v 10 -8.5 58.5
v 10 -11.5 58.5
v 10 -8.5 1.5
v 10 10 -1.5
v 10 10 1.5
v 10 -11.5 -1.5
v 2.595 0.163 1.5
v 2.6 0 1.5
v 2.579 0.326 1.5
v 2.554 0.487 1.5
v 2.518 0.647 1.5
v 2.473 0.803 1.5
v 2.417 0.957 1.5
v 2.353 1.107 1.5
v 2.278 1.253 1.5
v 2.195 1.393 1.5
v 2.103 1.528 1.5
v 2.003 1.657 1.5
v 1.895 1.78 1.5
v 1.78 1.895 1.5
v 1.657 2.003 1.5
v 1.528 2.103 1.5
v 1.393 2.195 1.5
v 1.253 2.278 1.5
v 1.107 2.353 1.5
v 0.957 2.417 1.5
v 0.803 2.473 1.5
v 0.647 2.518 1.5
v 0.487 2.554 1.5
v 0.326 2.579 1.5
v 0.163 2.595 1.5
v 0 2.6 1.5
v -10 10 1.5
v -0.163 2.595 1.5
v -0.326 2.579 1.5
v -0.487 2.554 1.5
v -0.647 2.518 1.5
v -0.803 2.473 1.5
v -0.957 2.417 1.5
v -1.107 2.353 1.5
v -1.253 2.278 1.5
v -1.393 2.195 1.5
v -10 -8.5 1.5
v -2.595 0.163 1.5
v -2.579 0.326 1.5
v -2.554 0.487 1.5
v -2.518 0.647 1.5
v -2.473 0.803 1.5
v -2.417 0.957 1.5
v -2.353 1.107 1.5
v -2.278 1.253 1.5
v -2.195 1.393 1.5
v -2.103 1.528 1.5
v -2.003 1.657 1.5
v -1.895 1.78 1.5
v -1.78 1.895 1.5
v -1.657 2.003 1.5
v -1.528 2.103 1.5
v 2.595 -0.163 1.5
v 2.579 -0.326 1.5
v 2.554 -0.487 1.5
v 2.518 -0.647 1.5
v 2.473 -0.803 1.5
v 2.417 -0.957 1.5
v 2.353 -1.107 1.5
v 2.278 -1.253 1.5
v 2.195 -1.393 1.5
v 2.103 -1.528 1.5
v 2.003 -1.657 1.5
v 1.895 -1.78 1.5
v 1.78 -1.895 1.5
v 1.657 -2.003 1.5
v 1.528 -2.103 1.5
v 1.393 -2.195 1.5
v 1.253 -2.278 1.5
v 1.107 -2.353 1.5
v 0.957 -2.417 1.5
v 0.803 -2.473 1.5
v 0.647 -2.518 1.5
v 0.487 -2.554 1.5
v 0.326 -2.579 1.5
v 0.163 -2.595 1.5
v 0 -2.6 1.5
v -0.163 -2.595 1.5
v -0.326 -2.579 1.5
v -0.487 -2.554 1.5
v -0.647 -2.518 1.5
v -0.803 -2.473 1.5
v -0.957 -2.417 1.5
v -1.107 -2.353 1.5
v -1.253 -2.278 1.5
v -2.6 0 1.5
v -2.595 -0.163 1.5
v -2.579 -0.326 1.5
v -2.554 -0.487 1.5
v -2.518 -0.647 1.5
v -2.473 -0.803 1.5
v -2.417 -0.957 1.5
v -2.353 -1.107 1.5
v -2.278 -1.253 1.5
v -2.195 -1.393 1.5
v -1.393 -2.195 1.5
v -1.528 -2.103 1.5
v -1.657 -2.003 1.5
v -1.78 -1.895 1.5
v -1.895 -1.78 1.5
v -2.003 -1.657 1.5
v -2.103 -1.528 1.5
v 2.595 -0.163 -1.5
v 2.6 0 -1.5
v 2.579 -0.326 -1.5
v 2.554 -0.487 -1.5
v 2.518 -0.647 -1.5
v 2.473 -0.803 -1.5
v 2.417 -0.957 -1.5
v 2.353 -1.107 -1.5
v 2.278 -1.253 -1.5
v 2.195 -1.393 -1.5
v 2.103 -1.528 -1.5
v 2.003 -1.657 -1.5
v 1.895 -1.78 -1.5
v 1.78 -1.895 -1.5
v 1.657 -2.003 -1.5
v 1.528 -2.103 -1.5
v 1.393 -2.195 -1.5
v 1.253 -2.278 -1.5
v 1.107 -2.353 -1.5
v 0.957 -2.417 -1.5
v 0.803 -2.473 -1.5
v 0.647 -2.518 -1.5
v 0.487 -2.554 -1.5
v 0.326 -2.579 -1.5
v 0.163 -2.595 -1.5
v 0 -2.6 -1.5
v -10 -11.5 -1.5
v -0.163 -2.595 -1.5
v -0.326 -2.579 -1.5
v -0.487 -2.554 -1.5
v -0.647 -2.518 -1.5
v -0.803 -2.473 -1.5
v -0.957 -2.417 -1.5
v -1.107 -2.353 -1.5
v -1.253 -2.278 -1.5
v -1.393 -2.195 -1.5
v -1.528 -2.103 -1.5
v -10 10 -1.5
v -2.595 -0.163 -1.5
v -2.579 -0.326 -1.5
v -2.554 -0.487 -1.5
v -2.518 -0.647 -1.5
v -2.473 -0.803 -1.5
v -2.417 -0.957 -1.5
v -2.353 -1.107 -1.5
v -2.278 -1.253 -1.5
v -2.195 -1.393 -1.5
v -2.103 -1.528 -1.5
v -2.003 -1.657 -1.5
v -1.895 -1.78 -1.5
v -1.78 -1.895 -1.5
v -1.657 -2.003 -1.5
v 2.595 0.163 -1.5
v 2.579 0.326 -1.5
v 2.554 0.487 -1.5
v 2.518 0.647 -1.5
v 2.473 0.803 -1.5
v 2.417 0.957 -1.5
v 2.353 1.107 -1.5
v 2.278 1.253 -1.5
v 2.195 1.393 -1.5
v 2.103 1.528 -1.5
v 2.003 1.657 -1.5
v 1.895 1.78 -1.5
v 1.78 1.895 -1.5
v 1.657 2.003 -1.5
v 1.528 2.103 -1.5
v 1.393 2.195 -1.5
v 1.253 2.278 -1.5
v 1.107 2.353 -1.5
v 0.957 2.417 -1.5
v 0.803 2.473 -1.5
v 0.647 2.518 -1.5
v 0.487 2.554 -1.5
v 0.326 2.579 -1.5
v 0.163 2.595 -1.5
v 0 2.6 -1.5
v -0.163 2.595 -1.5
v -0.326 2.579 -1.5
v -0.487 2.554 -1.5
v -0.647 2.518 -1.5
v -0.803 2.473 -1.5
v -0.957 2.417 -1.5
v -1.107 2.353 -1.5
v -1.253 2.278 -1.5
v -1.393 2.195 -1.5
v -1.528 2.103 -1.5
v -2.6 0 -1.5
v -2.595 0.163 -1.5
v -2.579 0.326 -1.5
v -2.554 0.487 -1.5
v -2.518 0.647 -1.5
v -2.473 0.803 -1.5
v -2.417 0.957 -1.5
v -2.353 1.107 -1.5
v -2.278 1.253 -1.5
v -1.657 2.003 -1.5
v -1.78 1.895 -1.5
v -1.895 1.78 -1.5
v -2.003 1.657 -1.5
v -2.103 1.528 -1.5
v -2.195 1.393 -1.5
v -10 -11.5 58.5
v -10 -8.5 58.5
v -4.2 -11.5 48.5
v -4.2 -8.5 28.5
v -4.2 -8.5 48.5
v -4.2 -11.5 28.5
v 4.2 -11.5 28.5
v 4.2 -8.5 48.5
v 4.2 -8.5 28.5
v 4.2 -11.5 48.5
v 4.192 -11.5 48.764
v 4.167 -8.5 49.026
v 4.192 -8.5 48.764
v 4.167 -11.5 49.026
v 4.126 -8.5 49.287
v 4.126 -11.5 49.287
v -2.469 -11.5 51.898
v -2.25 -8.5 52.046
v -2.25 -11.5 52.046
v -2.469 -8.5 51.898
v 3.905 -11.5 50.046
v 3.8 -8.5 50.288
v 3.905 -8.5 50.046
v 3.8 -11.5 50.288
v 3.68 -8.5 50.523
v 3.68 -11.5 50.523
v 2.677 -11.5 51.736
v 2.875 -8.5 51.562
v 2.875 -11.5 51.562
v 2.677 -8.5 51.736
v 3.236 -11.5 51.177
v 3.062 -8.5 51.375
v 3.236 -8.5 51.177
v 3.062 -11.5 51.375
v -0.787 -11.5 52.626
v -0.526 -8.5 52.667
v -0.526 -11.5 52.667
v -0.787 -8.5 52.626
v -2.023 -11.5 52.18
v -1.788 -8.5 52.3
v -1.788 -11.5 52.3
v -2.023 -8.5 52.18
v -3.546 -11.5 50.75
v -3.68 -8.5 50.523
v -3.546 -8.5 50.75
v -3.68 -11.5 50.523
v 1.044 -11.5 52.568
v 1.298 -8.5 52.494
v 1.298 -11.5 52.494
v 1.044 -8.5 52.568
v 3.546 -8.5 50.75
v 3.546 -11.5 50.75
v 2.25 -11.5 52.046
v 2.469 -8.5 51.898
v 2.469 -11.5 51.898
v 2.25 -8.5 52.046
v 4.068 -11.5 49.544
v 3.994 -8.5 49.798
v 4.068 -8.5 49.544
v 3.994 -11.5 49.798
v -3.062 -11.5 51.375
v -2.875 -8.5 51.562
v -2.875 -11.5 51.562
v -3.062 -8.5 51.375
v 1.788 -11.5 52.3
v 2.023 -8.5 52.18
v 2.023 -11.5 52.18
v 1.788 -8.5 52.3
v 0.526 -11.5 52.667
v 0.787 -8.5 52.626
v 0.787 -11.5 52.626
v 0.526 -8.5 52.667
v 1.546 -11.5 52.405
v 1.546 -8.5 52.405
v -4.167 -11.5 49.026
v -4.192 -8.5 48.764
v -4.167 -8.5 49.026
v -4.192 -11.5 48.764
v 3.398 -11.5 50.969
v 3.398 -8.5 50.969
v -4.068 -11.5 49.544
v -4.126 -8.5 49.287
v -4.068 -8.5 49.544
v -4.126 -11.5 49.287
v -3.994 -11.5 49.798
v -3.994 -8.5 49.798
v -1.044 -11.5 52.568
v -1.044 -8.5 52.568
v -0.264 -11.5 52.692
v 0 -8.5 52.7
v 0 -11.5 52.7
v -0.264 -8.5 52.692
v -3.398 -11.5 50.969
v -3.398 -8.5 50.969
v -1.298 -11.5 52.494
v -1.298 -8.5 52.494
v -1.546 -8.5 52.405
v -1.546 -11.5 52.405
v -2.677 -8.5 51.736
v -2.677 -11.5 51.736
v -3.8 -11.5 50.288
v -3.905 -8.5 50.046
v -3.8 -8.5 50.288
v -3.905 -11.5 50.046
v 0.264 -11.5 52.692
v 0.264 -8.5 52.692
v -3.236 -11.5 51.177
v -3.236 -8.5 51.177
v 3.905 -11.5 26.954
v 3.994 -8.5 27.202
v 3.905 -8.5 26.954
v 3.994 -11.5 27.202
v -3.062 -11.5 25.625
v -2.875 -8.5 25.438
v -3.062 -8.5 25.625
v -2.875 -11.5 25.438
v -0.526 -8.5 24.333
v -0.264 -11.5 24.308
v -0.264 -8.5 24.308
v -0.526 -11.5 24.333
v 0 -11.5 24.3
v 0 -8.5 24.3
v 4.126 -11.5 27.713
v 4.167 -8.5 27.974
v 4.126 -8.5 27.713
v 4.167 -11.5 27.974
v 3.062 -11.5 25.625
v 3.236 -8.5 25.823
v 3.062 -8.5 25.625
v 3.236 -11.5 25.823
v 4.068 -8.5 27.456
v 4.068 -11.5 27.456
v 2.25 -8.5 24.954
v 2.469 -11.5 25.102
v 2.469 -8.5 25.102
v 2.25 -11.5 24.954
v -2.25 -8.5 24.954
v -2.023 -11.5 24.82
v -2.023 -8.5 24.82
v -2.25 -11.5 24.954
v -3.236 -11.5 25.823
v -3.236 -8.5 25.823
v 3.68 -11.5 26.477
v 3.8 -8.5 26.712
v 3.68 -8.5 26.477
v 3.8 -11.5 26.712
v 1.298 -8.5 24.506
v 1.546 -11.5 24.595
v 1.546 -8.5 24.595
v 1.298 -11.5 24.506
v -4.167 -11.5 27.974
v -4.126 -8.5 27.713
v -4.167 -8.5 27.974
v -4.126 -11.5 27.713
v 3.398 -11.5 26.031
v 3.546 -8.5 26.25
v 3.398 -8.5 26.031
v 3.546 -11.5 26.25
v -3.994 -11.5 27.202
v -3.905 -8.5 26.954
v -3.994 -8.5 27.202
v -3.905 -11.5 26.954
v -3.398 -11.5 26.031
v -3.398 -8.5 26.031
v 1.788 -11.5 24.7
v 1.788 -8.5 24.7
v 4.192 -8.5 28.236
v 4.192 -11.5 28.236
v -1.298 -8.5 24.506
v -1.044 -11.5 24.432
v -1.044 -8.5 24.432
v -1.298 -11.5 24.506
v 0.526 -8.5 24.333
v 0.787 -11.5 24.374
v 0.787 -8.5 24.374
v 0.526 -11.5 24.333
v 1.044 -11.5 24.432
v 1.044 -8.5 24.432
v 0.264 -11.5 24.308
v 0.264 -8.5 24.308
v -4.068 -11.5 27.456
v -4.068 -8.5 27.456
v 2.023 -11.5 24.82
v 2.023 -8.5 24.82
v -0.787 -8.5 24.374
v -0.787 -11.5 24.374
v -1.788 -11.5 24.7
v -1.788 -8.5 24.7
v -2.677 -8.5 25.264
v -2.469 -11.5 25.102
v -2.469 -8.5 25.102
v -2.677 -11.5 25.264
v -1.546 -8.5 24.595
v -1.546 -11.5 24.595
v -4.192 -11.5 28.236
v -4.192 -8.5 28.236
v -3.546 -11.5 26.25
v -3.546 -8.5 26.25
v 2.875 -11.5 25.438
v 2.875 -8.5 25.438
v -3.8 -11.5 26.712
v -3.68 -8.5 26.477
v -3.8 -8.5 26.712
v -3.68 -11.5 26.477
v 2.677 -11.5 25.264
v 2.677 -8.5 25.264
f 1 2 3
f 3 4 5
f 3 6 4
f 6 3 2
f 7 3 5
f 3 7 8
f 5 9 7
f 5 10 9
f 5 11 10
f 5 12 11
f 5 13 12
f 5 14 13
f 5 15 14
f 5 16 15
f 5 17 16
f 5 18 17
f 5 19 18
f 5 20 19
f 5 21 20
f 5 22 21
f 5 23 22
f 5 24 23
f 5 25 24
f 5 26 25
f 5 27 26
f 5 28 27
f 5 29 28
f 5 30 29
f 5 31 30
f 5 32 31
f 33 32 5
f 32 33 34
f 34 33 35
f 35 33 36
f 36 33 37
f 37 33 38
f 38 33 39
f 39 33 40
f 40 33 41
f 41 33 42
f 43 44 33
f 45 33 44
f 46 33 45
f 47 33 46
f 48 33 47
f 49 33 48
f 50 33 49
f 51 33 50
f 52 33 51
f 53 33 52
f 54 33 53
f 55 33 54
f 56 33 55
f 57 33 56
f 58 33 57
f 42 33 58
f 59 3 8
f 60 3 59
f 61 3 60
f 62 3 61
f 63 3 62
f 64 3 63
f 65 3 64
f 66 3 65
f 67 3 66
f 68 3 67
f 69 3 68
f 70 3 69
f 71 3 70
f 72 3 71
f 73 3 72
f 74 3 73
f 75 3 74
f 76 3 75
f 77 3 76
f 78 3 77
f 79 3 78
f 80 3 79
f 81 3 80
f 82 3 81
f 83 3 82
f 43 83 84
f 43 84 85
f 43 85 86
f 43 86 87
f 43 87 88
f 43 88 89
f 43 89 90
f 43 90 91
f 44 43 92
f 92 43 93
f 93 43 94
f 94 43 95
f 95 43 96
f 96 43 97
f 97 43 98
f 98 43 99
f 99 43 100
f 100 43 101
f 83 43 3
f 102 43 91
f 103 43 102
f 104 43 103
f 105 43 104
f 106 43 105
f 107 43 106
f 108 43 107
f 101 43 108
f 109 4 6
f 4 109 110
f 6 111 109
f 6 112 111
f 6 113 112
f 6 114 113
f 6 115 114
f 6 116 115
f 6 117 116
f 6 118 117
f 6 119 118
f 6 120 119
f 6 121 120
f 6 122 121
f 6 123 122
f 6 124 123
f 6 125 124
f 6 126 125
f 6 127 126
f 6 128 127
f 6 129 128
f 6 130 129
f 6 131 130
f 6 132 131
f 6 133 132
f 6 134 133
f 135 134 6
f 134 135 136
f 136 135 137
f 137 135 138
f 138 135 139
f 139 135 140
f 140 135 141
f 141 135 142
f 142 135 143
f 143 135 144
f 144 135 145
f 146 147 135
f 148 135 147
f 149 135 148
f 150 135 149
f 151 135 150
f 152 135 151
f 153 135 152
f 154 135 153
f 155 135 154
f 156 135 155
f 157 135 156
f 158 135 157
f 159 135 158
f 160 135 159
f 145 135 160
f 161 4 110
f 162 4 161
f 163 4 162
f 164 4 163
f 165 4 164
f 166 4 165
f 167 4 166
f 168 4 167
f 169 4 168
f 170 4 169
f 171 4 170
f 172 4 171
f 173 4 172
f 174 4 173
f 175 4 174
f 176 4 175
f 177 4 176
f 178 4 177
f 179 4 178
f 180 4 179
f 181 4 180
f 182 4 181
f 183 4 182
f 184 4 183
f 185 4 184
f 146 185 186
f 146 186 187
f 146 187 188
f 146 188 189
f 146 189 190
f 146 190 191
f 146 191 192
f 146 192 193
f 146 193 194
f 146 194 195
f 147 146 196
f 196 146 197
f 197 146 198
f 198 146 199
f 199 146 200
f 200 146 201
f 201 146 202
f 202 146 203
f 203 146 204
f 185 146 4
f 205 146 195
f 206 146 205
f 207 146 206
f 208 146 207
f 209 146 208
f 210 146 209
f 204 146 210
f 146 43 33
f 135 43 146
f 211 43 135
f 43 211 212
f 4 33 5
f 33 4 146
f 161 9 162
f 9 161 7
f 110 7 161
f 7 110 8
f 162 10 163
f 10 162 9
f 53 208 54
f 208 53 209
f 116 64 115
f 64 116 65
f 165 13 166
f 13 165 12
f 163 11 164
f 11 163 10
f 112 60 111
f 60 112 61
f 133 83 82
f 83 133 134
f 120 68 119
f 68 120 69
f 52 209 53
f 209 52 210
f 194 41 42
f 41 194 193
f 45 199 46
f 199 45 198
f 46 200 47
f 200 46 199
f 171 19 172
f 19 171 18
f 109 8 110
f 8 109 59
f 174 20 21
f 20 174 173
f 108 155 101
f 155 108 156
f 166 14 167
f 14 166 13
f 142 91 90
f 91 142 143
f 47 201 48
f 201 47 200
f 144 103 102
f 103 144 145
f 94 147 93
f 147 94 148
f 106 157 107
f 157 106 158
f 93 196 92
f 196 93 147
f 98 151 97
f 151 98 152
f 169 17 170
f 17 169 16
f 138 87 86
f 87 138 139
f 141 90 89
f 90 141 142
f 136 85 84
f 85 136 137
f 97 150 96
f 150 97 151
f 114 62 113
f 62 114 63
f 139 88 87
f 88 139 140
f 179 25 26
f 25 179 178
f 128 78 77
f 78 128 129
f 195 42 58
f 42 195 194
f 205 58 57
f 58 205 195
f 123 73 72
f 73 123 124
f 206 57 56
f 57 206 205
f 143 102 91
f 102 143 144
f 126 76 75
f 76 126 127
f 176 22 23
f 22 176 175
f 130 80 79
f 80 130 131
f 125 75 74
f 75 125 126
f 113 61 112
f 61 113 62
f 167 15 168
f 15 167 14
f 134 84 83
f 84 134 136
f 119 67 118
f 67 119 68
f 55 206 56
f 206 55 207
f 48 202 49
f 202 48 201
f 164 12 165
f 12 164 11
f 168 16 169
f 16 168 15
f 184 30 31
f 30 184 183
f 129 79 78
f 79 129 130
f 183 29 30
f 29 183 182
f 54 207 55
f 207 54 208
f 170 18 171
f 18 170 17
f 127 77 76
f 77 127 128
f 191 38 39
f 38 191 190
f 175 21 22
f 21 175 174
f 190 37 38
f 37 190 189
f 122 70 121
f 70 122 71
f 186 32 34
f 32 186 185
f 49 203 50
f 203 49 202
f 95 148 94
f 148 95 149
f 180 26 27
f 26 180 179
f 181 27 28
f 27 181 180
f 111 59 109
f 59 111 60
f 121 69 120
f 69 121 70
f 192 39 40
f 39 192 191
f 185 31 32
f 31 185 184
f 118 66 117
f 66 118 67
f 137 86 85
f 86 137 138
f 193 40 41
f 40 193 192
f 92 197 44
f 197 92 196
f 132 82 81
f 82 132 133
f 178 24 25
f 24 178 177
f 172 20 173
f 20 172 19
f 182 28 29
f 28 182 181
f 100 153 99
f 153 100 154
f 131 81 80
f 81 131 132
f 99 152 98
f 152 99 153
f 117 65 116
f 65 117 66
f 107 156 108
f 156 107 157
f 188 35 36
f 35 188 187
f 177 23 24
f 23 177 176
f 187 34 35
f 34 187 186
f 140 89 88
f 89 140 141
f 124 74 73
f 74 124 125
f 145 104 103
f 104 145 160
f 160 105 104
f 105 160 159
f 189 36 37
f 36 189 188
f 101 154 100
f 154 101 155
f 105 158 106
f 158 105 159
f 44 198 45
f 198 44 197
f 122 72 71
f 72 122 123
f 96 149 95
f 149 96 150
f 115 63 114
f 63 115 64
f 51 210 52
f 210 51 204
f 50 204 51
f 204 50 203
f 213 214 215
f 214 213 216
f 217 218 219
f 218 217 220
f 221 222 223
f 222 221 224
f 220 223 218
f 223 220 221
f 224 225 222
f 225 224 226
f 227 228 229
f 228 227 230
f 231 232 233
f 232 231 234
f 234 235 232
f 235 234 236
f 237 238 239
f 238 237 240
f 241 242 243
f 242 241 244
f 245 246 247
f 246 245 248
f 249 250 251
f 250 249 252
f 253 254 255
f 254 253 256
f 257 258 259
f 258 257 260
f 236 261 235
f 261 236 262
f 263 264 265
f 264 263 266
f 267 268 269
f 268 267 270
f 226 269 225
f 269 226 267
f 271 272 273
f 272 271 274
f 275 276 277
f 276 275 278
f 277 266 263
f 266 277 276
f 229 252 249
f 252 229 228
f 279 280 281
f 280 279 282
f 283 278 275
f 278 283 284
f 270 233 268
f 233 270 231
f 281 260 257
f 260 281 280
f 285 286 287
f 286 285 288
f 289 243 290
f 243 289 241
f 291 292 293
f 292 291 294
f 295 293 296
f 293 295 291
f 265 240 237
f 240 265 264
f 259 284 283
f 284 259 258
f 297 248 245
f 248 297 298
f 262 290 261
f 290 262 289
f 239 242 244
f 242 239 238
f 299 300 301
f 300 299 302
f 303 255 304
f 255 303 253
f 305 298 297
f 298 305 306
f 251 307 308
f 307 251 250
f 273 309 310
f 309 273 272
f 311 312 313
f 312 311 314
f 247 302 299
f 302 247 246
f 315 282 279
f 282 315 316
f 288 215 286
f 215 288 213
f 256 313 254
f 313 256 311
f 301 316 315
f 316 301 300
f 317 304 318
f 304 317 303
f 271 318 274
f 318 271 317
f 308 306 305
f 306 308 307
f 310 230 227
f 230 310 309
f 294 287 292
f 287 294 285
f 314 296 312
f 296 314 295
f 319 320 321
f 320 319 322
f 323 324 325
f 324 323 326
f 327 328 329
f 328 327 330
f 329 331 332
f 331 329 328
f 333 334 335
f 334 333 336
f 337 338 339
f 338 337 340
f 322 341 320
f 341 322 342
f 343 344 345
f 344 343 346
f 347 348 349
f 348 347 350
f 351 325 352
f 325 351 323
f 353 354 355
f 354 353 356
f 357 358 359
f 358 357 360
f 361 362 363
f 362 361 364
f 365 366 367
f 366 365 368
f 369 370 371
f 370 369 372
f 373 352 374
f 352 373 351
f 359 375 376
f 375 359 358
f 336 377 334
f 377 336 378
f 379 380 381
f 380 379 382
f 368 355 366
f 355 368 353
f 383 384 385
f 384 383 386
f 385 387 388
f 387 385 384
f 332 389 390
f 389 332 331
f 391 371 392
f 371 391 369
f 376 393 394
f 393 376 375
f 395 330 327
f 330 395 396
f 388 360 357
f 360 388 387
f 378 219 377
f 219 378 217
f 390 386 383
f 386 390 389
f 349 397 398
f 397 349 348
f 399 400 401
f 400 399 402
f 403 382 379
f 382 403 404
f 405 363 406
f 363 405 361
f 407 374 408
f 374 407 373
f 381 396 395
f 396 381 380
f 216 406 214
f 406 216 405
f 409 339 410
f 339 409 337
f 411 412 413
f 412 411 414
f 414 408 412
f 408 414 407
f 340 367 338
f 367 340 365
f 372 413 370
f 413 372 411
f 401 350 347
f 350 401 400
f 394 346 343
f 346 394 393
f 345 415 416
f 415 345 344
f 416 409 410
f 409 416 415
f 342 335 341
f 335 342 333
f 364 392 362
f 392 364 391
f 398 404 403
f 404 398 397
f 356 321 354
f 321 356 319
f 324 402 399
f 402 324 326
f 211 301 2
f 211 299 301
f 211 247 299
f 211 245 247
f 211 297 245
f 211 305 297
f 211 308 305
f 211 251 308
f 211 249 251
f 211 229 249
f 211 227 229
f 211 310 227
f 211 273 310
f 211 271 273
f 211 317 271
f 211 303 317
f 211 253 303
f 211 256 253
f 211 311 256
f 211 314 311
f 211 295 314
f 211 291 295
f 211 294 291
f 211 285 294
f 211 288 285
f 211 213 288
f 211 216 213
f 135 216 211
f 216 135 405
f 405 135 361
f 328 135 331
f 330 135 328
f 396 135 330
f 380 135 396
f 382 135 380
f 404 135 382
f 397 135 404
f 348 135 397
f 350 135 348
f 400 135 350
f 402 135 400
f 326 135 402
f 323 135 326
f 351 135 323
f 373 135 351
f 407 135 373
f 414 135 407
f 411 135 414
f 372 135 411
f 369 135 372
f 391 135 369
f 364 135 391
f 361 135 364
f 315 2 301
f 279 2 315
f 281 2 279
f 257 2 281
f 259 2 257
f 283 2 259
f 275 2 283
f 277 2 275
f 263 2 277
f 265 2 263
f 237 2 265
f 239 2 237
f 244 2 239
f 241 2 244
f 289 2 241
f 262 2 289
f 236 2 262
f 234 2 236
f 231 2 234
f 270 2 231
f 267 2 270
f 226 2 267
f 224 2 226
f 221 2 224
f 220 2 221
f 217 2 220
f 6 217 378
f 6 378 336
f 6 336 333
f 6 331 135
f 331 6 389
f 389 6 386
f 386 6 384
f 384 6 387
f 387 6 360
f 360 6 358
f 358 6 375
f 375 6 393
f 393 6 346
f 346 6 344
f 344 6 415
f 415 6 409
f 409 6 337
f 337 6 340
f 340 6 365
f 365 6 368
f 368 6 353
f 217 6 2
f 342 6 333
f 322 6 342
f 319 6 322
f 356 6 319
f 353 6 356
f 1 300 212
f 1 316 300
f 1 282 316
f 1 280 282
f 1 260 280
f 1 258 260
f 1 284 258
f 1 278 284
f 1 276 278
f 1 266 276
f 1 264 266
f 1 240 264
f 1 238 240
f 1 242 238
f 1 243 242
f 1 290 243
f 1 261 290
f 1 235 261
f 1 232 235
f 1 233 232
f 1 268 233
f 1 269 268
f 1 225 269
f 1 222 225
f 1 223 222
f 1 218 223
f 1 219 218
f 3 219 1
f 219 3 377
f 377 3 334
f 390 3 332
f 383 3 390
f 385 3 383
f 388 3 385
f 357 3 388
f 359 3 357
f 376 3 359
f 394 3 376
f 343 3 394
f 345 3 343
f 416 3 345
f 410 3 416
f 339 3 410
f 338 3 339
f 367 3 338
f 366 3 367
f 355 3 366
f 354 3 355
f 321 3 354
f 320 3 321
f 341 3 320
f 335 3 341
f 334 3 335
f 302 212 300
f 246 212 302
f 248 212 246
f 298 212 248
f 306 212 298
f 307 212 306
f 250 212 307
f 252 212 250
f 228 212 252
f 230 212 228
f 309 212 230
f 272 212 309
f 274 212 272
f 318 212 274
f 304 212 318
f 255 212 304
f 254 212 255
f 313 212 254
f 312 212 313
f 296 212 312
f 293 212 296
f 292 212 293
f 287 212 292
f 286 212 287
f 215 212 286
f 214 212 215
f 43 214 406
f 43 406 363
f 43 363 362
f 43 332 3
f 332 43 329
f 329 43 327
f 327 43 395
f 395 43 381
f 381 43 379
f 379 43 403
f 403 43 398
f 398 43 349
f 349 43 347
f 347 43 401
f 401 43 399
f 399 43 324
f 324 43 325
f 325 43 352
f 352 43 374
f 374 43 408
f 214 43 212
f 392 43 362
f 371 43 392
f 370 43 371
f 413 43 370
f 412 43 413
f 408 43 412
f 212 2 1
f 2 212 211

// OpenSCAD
w=20;
l=60;
h=3;
$fn=100;
r=4.2;

module slot() {
    rotate([0,0,90])
    cube([w,r*2,r*2],center=true);
    
    translate([0,w/2,0])
    cylinder(r,r,r);
    
        translate([0,-w/2,0])
    cylinder(r,r,r);
}

difference() {
    cube([w,w,3], center=true);
    translate([0,0,-h])
    cylinder(h*2,2.6,2.6);
}

rotate([90,0,0])
translate([0,l/2 - h/2,w/2])
difference(){
    cube([w,l,h],center=true);
    translate([0,10,-2])
    //rotate([0,0,90])
    slot();
}
